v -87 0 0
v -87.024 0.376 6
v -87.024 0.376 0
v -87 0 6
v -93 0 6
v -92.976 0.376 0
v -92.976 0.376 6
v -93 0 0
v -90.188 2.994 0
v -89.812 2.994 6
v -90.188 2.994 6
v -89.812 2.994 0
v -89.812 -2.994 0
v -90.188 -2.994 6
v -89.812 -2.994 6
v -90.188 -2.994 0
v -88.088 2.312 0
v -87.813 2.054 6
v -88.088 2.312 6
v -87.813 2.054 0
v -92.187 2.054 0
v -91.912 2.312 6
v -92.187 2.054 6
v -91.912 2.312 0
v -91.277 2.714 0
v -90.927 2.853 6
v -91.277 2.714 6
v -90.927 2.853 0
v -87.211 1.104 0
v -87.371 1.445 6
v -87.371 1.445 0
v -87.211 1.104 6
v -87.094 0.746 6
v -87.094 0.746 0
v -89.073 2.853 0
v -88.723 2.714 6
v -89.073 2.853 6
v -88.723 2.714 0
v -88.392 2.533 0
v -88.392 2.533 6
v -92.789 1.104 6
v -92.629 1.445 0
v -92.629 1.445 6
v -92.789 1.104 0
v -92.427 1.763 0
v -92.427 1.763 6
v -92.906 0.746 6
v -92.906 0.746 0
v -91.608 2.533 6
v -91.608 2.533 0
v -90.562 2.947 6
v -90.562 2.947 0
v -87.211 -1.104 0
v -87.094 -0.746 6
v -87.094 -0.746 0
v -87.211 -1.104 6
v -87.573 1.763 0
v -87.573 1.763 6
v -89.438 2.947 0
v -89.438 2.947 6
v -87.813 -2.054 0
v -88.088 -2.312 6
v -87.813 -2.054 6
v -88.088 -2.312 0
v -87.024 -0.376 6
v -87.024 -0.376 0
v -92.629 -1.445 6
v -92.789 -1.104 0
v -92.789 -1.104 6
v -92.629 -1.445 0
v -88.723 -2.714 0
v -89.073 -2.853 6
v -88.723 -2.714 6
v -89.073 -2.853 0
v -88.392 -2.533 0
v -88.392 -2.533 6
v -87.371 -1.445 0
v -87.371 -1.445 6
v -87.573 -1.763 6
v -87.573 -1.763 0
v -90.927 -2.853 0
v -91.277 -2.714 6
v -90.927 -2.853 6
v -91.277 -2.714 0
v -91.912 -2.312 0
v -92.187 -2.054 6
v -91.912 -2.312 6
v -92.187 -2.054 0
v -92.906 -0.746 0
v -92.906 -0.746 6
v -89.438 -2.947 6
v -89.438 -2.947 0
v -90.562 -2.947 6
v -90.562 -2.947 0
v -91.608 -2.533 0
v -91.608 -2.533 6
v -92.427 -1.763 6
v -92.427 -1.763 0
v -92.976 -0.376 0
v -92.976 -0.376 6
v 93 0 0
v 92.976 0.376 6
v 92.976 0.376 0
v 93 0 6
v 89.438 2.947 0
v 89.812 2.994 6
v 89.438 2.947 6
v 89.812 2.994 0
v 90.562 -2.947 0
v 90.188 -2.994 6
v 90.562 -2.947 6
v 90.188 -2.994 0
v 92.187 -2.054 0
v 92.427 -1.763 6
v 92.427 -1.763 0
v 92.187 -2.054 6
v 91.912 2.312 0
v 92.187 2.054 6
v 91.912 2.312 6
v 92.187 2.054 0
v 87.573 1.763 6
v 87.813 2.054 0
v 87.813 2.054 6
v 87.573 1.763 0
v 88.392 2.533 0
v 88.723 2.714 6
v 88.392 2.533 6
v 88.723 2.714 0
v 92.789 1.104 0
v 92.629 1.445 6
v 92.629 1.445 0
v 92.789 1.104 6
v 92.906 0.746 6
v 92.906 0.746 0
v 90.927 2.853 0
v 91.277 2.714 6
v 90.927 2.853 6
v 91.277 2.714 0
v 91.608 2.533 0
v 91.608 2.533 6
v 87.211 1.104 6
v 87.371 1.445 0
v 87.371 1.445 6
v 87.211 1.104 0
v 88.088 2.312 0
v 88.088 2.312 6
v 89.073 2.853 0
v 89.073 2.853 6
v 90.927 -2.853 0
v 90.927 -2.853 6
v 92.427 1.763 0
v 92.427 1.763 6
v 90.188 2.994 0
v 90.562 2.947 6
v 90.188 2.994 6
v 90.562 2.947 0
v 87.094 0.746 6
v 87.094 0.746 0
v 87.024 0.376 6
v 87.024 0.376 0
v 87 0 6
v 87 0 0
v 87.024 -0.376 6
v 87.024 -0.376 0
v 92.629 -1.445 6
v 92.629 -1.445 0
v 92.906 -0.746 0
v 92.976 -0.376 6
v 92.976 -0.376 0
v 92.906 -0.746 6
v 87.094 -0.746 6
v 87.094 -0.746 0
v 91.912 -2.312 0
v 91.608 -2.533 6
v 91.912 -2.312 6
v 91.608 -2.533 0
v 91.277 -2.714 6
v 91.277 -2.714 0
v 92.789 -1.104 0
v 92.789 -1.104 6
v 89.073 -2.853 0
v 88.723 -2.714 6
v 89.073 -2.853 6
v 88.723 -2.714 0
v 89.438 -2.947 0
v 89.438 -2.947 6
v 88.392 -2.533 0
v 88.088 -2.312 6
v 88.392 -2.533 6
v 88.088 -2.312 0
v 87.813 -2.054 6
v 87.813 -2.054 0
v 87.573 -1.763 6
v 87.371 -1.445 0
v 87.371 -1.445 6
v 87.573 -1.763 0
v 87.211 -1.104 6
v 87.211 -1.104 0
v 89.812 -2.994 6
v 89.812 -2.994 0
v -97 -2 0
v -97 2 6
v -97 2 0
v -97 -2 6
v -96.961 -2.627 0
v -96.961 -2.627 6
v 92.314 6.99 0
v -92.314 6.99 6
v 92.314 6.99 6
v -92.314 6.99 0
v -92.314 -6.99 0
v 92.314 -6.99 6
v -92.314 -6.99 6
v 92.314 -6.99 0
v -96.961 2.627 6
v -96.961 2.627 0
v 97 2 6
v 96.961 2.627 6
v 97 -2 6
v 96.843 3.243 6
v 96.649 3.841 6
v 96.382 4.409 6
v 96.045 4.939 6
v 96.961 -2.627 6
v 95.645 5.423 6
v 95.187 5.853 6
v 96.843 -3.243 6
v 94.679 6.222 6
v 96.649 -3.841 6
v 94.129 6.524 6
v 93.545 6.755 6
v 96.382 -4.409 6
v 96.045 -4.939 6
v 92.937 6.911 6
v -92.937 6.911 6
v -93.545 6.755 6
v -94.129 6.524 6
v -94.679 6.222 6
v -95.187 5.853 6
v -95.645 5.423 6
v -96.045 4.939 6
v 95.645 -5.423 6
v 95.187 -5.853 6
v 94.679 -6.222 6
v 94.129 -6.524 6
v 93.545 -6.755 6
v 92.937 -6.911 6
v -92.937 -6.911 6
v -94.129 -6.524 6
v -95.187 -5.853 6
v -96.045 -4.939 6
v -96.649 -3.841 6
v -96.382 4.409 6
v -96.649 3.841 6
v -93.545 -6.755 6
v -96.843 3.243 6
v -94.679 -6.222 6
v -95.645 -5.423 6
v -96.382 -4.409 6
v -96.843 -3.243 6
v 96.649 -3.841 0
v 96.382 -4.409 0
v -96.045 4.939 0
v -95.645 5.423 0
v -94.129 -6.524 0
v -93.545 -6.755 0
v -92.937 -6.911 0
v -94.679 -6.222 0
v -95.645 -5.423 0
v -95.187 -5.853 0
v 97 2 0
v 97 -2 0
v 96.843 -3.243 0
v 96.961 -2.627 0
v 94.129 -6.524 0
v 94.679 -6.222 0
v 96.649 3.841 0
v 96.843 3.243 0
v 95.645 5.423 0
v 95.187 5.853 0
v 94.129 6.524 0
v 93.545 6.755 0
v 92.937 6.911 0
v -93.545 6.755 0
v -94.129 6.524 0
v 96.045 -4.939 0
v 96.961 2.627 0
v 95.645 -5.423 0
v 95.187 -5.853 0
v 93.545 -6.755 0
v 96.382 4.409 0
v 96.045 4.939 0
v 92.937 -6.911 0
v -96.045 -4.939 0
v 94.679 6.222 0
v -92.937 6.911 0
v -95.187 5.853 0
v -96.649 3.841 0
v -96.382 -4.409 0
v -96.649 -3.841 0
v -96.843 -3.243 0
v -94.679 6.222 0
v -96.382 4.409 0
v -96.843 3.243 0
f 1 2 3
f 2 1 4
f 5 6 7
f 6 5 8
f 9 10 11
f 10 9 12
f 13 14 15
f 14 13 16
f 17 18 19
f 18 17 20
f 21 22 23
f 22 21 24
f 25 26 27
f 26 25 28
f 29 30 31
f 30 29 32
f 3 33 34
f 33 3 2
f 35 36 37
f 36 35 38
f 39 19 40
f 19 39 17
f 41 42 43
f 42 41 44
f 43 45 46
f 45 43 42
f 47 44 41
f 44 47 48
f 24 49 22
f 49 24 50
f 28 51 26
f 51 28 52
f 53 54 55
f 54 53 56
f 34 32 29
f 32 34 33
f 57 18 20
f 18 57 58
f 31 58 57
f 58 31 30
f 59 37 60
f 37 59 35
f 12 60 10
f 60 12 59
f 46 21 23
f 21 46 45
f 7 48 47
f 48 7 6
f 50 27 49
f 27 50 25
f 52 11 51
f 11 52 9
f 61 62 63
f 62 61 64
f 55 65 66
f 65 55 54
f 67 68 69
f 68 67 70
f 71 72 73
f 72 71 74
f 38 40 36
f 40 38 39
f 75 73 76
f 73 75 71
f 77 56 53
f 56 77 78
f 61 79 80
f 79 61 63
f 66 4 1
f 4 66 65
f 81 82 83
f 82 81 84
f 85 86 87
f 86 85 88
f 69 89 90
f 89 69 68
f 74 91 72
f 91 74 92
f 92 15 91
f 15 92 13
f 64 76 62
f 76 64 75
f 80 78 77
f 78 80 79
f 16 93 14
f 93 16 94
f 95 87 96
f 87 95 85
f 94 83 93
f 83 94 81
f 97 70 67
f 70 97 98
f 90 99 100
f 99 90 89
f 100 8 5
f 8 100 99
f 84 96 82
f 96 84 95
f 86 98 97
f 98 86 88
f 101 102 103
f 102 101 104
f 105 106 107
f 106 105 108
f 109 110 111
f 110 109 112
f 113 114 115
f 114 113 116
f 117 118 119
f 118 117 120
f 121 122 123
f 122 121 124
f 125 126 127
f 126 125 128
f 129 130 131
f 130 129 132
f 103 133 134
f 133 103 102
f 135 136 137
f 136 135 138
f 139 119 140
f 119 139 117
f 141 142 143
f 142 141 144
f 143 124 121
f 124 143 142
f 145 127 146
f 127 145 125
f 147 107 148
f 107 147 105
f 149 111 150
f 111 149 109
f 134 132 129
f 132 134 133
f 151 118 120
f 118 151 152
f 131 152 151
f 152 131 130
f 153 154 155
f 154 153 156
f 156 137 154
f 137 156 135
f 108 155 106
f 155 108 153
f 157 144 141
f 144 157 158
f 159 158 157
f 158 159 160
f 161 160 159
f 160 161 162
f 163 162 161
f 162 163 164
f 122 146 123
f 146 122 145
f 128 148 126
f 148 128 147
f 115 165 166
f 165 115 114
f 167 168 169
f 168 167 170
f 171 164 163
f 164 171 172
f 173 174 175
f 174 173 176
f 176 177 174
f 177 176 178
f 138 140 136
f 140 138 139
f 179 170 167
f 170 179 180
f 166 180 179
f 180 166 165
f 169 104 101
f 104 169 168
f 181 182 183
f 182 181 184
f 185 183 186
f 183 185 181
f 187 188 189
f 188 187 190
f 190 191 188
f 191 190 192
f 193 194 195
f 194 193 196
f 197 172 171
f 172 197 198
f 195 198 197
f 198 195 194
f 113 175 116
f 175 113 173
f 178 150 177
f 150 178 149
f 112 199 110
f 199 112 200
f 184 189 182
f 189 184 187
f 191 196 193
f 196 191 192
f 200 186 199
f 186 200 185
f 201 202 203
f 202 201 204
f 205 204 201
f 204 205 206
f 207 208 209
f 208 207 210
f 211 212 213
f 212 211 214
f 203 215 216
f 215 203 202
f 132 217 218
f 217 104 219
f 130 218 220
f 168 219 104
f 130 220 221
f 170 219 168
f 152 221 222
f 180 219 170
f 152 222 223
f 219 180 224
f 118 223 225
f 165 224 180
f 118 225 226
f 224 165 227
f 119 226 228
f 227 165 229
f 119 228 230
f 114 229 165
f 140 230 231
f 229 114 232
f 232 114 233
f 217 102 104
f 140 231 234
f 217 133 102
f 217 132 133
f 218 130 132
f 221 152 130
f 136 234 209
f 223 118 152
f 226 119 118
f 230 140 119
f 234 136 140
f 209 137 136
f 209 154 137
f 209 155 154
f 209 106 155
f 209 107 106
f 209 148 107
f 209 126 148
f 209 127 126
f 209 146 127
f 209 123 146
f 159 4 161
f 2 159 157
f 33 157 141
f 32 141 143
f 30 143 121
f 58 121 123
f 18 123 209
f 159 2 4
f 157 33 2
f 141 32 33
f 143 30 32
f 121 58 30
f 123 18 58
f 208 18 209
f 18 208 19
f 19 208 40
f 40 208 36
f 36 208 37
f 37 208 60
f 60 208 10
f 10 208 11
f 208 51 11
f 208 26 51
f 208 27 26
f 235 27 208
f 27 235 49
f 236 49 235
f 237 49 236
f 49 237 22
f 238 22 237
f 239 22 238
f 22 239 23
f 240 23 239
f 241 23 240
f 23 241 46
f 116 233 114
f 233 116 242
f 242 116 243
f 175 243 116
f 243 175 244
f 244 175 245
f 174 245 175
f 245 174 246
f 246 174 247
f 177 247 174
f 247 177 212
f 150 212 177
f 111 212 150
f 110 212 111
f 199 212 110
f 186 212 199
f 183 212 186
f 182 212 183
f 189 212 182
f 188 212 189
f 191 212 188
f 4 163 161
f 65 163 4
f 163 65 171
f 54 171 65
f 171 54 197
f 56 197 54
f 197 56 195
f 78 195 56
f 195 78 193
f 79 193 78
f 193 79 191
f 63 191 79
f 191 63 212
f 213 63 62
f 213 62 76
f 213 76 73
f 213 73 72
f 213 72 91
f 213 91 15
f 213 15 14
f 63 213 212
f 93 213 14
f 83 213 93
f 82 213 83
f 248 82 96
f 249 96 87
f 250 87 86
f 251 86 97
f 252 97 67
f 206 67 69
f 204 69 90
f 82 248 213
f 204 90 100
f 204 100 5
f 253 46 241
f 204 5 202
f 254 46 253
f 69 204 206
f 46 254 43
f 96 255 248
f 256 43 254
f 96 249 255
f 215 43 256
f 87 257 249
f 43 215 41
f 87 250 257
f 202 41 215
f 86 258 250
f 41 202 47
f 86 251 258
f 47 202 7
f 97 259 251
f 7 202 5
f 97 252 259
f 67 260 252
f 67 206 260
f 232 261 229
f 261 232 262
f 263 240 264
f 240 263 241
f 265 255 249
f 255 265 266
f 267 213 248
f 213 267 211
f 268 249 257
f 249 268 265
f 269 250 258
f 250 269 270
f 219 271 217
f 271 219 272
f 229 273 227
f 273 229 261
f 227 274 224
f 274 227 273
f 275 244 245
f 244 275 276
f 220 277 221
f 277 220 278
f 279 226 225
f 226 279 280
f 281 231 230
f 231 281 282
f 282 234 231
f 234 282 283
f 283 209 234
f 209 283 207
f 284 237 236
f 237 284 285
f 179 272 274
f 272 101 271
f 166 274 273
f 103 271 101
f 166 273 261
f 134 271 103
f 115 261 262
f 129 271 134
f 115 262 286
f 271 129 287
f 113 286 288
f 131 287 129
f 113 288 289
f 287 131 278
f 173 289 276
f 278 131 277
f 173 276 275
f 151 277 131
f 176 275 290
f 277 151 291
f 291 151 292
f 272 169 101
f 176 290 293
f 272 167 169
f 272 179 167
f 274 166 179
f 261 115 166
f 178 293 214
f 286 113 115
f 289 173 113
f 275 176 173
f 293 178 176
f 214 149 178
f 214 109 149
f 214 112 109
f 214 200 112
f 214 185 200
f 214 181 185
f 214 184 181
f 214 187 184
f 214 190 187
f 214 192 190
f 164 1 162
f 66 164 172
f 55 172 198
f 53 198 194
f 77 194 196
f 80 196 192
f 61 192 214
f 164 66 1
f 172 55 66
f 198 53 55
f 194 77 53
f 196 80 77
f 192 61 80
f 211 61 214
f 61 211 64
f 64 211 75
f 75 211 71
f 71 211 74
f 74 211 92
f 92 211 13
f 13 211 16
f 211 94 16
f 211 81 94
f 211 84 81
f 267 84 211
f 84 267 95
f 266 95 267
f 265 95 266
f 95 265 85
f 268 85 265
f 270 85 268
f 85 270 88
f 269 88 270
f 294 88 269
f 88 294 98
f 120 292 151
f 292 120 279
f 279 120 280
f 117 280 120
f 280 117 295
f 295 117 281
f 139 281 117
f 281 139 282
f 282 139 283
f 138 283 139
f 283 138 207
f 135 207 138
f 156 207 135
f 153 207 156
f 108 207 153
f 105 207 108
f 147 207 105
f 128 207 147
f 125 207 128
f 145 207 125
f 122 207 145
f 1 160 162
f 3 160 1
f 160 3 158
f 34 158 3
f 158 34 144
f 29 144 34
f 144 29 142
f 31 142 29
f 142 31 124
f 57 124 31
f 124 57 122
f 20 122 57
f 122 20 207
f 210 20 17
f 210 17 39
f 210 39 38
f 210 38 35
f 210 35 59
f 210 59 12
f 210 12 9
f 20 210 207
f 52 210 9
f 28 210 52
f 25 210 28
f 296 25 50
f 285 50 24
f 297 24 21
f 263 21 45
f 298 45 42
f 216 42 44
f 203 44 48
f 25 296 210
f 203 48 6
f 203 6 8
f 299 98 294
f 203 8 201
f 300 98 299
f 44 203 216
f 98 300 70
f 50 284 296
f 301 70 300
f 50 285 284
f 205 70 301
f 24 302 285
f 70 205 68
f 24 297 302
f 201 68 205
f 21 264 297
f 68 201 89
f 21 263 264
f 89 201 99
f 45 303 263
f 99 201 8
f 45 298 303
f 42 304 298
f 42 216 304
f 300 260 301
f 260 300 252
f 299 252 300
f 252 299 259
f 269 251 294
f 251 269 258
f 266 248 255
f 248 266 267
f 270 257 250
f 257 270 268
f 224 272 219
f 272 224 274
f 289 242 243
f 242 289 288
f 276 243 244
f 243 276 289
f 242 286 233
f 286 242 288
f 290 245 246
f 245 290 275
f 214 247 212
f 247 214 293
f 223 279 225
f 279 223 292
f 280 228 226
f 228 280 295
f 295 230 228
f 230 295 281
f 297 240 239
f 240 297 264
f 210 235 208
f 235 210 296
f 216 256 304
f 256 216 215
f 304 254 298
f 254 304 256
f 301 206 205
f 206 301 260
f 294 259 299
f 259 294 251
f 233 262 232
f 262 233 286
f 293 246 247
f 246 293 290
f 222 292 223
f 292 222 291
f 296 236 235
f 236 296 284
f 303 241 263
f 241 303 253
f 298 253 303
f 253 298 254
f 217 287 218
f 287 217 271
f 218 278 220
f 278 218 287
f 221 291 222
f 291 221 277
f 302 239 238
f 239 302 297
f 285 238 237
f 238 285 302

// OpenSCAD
$fn = 50;


difference() {
	union() {
		hull() {
			translate(v = [-92.0000000000, 2.0000000000, 0]) {
				cylinder(h = 6, r = 5);
			}
			translate(v = [92.0000000000, 2.0000000000, 0]) {
				cylinder(h = 6, r = 5);
			}
			translate(v = [-92.0000000000, -2.0000000000, 0]) {
				cylinder(h = 6, r = 5);
			}
			translate(v = [92.0000000000, -2.0000000000, 0]) {
				cylinder(h = 6, r = 5);
			}
		}
	}
	union() {
		translate(v = [-90.0000000000, 0.0000000000, -100.0000000000]) {
			cylinder(h = 200, r = 3.0000000000);
		}
		translate(v = [-90.0000000000, 0.0000000000, -100.0000000000]) {
			cylinder(h = 200, r = 3.0000000000);
		}
		translate(v = [90.0000000000, 0.0000000000, -100.0000000000]) {
			cylinder(h = 200, r = 3.0000000000);
		}
		translate(v = [90.0000000000, 0.0000000000, -100.0000000000]) {
			cylinder(h = 200, r = 3.0000000000);
		}
	}
}
